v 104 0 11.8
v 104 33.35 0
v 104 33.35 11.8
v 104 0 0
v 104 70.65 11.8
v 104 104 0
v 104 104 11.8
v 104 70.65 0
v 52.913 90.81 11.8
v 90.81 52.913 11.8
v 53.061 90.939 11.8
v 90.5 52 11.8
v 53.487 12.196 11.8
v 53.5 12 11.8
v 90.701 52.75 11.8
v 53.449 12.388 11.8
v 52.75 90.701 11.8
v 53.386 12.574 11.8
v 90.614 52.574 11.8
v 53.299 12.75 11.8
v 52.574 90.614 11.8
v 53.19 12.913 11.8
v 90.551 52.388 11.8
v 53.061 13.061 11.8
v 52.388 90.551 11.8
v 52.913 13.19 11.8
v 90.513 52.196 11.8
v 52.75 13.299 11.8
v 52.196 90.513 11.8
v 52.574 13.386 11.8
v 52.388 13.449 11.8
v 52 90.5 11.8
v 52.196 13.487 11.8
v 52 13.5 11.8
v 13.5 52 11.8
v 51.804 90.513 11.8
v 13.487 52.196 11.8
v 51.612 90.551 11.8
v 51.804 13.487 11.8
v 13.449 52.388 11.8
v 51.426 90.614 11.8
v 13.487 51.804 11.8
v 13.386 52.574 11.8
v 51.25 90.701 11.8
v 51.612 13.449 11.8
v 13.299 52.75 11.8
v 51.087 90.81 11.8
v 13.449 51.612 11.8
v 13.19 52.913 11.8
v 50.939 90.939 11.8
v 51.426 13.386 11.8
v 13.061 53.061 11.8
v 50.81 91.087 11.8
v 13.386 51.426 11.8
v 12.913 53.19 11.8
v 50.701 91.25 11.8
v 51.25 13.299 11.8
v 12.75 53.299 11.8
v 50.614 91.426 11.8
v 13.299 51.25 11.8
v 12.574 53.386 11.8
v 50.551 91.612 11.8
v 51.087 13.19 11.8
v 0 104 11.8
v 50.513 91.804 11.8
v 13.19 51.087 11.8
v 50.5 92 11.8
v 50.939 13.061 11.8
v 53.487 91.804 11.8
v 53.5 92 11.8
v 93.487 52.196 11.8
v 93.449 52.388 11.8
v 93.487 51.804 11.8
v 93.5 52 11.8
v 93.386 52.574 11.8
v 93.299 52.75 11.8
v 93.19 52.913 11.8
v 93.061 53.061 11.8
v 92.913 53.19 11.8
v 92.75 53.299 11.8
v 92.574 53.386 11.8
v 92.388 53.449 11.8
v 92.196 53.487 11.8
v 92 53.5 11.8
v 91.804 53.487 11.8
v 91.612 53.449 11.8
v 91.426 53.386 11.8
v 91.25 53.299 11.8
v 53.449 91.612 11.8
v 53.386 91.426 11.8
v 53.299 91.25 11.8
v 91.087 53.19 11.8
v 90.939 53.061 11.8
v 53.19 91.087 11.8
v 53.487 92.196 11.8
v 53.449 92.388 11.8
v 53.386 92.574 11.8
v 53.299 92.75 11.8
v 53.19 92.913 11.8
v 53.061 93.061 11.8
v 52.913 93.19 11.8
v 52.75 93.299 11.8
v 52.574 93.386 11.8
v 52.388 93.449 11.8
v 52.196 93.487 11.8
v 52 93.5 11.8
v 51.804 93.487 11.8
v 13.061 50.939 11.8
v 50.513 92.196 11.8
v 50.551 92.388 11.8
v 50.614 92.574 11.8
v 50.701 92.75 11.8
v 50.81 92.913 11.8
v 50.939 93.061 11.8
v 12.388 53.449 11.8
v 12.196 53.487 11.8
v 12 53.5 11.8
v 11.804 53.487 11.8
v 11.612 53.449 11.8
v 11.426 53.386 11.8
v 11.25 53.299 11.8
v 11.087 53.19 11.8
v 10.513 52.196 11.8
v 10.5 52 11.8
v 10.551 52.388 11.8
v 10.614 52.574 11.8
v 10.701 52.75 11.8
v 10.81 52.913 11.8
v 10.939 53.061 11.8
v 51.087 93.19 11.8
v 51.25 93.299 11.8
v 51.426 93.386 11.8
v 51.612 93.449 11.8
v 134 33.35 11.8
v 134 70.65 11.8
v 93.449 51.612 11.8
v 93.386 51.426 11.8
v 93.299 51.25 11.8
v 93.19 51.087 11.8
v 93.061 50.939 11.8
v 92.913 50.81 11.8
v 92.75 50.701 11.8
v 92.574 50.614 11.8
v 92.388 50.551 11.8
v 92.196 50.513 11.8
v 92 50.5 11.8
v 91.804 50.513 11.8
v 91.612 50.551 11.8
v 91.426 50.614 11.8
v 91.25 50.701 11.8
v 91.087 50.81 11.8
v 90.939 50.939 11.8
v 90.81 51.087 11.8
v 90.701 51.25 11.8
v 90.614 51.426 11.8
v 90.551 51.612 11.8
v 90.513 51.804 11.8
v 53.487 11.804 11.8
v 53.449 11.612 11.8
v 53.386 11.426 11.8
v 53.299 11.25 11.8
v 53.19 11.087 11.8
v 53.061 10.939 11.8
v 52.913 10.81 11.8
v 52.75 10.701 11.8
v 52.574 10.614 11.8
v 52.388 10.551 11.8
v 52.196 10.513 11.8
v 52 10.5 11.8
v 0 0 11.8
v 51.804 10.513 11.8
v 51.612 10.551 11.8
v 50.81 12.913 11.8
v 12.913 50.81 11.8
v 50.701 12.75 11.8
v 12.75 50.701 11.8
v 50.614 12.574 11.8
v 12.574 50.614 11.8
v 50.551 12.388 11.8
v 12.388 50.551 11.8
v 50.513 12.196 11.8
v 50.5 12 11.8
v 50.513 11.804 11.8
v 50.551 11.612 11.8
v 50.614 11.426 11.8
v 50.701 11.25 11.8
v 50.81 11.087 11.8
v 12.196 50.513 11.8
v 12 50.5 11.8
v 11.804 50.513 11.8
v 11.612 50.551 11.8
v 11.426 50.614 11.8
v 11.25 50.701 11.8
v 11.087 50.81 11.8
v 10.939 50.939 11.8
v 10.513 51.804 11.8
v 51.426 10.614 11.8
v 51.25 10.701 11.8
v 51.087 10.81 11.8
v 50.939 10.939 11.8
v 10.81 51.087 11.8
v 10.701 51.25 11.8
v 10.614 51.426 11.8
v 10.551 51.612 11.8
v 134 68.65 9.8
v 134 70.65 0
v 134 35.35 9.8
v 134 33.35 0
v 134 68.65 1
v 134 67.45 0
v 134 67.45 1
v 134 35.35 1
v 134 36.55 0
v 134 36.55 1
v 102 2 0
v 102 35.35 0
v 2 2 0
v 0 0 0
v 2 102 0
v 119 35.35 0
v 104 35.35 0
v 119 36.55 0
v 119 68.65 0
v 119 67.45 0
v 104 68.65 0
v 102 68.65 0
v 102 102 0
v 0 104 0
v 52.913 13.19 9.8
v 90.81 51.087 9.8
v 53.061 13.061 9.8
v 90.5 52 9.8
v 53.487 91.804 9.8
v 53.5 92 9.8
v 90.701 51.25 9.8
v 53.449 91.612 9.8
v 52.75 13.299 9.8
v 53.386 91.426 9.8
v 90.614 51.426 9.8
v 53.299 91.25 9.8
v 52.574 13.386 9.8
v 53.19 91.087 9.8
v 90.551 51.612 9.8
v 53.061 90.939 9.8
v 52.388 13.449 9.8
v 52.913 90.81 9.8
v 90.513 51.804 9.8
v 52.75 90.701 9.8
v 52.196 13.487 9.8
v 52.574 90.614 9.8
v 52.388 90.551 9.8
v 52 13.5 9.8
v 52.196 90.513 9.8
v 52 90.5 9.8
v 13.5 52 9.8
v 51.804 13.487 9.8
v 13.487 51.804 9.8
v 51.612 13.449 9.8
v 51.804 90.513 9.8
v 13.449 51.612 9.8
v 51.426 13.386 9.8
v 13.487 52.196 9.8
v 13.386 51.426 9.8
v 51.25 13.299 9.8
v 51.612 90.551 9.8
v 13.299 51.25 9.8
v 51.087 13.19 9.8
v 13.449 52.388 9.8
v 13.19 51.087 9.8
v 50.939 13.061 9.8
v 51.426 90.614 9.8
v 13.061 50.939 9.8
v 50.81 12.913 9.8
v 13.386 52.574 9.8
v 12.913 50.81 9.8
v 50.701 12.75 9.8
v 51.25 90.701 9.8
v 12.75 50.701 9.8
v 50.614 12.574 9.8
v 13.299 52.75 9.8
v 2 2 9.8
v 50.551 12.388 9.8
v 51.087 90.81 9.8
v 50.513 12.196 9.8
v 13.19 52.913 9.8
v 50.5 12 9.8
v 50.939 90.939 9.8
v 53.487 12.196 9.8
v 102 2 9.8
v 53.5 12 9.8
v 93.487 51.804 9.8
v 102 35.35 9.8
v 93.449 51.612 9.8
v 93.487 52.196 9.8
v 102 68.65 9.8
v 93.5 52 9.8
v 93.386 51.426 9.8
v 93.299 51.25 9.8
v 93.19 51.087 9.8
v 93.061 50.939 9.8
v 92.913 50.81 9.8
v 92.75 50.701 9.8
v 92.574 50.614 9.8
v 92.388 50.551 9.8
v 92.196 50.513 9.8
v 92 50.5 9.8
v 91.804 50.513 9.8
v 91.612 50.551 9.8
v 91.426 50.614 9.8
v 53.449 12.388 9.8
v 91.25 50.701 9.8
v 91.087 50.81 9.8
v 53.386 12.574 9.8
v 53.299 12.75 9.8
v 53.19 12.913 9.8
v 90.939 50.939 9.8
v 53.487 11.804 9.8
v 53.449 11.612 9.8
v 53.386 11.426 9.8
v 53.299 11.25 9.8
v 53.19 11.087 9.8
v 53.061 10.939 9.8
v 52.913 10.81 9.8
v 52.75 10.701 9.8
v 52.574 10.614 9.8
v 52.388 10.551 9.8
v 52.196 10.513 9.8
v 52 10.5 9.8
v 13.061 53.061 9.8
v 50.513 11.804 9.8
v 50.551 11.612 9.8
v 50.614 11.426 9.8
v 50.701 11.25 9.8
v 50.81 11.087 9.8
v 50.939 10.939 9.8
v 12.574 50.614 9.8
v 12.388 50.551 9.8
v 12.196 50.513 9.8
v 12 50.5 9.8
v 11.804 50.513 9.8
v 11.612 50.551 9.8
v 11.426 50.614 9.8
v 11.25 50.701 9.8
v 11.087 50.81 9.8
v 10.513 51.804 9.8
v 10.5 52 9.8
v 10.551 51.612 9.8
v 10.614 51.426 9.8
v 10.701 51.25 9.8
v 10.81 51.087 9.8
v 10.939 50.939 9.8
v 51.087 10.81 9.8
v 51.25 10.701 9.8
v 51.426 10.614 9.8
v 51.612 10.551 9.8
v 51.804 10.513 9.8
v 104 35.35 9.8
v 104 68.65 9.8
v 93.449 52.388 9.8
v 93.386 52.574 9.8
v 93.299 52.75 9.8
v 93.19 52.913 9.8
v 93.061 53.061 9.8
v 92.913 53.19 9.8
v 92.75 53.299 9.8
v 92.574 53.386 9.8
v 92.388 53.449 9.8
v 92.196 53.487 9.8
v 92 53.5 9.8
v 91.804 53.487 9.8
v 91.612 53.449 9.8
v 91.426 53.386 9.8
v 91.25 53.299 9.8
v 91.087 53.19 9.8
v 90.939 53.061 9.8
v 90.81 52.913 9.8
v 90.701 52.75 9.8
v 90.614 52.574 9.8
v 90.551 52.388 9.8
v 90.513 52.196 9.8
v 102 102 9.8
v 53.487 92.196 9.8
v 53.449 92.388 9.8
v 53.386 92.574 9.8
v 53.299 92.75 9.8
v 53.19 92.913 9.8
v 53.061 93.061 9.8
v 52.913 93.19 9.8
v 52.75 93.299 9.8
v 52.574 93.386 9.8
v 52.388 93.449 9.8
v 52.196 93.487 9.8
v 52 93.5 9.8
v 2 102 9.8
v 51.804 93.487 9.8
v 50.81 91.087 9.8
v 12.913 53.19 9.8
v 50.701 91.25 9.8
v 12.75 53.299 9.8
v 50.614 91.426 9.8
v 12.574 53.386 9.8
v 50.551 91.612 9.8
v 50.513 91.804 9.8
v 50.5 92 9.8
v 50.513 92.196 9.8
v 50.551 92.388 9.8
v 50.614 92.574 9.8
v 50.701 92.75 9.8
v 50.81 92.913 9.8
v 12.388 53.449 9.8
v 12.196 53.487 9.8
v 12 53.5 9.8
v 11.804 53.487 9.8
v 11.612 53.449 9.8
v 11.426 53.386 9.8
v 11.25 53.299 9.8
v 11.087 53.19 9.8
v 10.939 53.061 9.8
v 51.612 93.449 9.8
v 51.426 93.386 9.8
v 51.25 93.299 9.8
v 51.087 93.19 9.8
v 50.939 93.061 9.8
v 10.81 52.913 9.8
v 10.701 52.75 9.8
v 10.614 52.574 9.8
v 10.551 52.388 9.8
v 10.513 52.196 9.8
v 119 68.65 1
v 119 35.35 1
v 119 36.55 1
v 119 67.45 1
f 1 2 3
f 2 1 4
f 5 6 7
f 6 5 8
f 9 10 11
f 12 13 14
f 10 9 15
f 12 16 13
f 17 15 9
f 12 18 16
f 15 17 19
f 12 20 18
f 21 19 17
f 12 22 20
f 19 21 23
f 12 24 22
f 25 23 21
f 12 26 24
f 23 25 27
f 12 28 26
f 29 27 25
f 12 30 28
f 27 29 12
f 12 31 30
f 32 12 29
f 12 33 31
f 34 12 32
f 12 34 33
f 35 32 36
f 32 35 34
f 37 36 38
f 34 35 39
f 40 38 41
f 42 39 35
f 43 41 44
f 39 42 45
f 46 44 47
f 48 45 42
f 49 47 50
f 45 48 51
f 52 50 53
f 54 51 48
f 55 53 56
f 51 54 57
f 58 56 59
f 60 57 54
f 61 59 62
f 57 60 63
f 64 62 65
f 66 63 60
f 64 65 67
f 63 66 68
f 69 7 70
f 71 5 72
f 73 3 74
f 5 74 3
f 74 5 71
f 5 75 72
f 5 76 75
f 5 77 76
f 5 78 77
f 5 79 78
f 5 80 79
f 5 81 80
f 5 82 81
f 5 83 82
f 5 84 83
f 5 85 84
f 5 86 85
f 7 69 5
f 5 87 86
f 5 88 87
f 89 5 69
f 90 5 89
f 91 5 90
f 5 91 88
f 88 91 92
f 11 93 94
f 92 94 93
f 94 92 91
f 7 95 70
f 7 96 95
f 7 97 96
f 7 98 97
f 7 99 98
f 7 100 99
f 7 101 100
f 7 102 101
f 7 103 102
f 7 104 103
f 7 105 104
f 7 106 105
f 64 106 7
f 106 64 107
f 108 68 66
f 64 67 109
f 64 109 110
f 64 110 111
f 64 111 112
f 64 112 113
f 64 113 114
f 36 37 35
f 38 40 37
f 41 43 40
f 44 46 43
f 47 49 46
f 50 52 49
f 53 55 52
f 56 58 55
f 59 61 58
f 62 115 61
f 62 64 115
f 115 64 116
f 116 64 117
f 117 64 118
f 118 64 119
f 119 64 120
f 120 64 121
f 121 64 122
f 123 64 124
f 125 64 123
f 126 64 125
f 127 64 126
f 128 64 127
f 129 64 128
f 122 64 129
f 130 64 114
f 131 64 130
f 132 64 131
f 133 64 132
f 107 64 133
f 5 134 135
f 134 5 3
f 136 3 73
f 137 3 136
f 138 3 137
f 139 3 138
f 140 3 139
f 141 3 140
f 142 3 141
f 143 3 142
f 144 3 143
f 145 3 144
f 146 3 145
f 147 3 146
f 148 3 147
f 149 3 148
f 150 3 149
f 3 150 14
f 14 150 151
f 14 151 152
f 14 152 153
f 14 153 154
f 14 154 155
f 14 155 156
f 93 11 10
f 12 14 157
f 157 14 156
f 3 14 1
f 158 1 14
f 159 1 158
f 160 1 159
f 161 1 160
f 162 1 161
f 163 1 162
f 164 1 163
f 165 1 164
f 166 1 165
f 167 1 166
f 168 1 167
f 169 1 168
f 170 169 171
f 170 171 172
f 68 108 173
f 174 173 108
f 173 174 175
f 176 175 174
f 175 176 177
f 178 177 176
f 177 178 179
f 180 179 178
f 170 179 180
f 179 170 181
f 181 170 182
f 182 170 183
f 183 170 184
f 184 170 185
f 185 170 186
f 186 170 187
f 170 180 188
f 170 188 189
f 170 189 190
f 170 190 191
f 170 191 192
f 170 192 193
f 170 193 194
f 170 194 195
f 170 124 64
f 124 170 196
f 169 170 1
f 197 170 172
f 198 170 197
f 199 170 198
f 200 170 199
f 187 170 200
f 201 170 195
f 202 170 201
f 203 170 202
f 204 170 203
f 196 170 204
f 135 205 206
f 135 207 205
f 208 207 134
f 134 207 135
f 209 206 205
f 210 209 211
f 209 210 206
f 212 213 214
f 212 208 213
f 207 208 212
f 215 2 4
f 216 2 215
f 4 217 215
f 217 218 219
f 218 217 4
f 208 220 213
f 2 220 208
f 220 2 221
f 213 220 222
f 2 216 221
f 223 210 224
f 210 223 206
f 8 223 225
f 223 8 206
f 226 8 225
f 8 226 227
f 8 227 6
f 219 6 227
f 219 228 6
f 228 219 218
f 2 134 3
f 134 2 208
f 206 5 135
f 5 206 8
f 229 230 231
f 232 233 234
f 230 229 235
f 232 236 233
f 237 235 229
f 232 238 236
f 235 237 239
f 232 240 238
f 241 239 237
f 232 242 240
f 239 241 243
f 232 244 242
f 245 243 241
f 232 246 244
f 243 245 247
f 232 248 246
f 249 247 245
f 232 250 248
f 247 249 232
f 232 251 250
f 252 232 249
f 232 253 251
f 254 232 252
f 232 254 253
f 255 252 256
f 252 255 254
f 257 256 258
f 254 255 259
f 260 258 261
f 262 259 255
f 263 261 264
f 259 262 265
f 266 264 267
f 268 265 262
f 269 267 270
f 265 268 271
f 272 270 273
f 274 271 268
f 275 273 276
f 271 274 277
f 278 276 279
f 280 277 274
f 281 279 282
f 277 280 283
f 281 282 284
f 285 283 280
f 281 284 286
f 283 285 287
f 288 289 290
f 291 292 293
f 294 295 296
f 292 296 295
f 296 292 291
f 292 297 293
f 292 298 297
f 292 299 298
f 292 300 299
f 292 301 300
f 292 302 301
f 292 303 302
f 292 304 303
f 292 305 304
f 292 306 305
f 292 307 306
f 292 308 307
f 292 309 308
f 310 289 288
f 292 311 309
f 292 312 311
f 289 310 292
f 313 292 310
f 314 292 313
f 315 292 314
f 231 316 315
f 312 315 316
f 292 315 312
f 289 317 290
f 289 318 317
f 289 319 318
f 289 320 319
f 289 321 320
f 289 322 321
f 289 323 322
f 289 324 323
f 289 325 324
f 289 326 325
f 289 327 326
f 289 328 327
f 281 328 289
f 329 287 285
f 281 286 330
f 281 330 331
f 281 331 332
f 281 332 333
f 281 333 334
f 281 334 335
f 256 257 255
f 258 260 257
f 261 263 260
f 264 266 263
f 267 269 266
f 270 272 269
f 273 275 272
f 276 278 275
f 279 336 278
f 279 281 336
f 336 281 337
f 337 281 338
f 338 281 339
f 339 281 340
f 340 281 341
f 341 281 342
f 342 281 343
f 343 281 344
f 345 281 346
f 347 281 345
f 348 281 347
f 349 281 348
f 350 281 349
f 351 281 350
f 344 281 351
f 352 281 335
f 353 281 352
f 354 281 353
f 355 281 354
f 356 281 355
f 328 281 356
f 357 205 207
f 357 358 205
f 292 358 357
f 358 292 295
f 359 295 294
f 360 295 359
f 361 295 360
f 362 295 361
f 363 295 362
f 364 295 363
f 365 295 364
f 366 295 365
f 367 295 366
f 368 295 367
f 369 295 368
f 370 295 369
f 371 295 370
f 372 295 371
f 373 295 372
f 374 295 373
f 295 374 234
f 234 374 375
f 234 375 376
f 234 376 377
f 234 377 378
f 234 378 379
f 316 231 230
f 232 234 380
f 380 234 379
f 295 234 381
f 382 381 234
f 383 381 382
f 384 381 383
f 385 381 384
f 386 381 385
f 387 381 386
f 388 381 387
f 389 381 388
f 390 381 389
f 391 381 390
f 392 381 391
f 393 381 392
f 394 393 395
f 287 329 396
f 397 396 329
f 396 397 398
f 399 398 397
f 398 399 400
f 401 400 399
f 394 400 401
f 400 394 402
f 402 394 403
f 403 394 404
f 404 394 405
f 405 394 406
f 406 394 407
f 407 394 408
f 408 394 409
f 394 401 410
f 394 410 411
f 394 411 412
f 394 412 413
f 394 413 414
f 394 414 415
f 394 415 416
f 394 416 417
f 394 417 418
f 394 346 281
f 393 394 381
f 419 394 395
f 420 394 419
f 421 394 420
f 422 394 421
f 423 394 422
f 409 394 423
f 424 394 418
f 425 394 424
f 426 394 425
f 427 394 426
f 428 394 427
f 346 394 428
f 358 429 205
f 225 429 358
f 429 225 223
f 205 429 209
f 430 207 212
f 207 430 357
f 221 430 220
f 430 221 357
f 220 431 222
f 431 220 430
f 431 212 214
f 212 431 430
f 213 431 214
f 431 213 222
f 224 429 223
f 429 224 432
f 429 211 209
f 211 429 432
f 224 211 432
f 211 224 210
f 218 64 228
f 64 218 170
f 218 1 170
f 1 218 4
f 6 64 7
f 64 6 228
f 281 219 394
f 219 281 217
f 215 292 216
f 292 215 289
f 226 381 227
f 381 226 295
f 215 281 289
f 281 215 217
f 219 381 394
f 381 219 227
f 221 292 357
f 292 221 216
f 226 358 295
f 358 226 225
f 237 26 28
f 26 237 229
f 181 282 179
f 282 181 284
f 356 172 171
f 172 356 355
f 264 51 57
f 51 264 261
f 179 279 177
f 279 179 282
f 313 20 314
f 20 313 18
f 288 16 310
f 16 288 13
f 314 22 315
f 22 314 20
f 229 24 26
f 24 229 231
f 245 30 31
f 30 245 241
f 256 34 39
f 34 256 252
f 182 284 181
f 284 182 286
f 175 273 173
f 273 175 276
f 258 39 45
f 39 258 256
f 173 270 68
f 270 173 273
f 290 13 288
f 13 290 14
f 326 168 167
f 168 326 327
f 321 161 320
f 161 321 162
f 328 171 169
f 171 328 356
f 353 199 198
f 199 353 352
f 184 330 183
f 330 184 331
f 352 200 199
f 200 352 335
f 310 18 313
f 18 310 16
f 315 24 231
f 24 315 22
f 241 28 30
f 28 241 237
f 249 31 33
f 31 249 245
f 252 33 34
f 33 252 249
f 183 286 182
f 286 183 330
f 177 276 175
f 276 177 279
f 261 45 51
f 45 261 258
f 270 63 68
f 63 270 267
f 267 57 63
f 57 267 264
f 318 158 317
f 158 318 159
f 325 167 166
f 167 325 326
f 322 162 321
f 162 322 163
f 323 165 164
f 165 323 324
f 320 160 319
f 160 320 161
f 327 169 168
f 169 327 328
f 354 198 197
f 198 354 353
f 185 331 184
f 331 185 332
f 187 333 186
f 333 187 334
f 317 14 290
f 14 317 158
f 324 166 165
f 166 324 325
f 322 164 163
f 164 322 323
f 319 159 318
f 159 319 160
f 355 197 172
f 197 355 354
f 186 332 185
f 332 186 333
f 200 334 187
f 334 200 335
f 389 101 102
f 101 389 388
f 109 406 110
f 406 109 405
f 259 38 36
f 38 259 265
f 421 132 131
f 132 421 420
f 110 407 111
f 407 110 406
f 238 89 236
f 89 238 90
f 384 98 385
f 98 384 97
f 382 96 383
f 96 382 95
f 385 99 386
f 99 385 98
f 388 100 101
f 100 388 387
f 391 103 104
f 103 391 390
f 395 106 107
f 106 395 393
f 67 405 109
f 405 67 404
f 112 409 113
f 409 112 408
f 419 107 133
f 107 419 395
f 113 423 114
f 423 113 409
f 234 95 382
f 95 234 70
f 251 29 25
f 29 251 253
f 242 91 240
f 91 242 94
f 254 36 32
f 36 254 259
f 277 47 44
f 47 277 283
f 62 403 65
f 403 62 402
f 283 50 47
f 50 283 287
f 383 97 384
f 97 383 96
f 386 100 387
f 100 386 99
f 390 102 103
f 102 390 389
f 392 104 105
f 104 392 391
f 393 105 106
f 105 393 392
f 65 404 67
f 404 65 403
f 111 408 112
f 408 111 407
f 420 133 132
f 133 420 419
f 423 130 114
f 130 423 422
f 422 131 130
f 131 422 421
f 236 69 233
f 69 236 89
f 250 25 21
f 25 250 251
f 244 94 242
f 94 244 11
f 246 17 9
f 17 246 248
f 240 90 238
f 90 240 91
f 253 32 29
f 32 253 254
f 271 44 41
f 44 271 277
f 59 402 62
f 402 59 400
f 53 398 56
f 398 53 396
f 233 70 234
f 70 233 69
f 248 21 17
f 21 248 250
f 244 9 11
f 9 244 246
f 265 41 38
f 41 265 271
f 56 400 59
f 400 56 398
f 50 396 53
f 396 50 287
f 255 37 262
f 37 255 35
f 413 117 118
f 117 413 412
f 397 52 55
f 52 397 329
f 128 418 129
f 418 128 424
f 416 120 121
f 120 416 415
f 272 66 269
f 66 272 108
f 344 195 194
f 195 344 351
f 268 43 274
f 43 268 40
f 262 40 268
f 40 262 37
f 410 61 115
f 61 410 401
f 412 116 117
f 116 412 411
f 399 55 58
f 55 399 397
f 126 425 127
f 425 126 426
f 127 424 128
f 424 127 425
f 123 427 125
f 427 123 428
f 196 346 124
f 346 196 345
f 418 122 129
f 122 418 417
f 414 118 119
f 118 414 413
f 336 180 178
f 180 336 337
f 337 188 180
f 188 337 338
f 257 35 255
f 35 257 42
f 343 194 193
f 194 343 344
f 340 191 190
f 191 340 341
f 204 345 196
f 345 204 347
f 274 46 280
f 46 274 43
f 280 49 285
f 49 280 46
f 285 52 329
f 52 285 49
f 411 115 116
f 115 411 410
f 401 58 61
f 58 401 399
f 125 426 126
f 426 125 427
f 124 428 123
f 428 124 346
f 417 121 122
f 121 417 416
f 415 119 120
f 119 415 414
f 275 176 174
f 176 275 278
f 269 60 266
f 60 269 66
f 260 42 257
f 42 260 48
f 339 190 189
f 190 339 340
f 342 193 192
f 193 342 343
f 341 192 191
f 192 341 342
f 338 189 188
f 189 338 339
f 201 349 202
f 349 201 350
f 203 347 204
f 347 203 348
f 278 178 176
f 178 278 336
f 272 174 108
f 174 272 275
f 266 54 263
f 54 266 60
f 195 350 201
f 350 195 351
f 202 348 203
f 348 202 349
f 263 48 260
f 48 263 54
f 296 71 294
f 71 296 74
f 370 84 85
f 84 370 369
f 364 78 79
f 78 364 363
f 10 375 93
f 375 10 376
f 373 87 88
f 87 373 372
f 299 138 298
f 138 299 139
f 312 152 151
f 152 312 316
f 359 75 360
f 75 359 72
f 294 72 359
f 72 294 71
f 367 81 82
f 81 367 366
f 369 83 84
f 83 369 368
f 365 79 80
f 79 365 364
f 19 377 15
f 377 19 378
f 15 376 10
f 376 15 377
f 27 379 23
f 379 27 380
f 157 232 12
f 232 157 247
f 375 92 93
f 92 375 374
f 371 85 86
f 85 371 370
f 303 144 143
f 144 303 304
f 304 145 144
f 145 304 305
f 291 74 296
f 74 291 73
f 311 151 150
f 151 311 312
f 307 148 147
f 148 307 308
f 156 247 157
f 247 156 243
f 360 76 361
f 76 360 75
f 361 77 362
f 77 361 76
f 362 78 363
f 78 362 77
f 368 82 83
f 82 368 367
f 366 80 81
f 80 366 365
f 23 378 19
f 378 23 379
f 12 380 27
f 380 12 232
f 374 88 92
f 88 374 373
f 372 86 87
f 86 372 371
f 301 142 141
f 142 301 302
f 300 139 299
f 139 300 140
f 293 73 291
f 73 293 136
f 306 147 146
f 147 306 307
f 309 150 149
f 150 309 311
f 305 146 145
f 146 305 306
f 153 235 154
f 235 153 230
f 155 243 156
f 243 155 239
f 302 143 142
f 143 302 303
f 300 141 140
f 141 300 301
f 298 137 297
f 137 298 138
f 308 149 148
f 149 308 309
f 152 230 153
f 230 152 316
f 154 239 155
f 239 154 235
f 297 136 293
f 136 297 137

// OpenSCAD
$fa = 1;
$fs = 0.2;

depth = 9.8;
width = 33.3;
length = 30;

thickness = 2;

tab_thickness = 1;
tab_depth = 1.2;
blank = 15;

term_len = 100;
term_offset = 10;

difference() {
    cube([term_len+2*thickness, term_len+2*thickness, depth+thickness]);
    translate(v = [thickness, thickness, 0]) 
    cube([term_len, term_len, depth]);
    translate(v = [term_len+thickness, (term_len+2*thickness)/2-width/2, 0]) 
    cube([length, width, depth]);

    translate([thickness+term_len/2, term_offset+thickness, 0])
    cylinder(h = 2*depth, r = 1.5);

    translate([thickness+term_len/2, thickness+term_len-term_offset, 0])
    cylinder(h = 2*depth, r = 1.5);

    translate([term_offset+thickness, thickness+term_len/2, 0])
    cylinder(h = 2*depth, r = 1.5);

    translate([thickness+term_len-term_offset, thickness+term_len/2, 0])
    cylinder(h = 2*depth, r = 1.5);
}

translate(v = [term_len+2*thickness, (term_len+2*thickness)/2-width/2-thickness, 0]) 
{
    difference() {
        union() {
            cube([length, width + 2*thickness, depth + thickness]);
            }
        
        translate([0, thickness, 0]) {
            cube([length, width, depth]);
            }    
    }

    translate([blank, 0, 0])
    cube([length-blank, thickness+tab_depth, tab_thickness]);

    translate([blank, 0, 0])
    translate([0, (width+2*thickness) - (thickness+tab_depth), 0])
    cube([length-blank, thickness+tab_depth, tab_thickness]);
}
